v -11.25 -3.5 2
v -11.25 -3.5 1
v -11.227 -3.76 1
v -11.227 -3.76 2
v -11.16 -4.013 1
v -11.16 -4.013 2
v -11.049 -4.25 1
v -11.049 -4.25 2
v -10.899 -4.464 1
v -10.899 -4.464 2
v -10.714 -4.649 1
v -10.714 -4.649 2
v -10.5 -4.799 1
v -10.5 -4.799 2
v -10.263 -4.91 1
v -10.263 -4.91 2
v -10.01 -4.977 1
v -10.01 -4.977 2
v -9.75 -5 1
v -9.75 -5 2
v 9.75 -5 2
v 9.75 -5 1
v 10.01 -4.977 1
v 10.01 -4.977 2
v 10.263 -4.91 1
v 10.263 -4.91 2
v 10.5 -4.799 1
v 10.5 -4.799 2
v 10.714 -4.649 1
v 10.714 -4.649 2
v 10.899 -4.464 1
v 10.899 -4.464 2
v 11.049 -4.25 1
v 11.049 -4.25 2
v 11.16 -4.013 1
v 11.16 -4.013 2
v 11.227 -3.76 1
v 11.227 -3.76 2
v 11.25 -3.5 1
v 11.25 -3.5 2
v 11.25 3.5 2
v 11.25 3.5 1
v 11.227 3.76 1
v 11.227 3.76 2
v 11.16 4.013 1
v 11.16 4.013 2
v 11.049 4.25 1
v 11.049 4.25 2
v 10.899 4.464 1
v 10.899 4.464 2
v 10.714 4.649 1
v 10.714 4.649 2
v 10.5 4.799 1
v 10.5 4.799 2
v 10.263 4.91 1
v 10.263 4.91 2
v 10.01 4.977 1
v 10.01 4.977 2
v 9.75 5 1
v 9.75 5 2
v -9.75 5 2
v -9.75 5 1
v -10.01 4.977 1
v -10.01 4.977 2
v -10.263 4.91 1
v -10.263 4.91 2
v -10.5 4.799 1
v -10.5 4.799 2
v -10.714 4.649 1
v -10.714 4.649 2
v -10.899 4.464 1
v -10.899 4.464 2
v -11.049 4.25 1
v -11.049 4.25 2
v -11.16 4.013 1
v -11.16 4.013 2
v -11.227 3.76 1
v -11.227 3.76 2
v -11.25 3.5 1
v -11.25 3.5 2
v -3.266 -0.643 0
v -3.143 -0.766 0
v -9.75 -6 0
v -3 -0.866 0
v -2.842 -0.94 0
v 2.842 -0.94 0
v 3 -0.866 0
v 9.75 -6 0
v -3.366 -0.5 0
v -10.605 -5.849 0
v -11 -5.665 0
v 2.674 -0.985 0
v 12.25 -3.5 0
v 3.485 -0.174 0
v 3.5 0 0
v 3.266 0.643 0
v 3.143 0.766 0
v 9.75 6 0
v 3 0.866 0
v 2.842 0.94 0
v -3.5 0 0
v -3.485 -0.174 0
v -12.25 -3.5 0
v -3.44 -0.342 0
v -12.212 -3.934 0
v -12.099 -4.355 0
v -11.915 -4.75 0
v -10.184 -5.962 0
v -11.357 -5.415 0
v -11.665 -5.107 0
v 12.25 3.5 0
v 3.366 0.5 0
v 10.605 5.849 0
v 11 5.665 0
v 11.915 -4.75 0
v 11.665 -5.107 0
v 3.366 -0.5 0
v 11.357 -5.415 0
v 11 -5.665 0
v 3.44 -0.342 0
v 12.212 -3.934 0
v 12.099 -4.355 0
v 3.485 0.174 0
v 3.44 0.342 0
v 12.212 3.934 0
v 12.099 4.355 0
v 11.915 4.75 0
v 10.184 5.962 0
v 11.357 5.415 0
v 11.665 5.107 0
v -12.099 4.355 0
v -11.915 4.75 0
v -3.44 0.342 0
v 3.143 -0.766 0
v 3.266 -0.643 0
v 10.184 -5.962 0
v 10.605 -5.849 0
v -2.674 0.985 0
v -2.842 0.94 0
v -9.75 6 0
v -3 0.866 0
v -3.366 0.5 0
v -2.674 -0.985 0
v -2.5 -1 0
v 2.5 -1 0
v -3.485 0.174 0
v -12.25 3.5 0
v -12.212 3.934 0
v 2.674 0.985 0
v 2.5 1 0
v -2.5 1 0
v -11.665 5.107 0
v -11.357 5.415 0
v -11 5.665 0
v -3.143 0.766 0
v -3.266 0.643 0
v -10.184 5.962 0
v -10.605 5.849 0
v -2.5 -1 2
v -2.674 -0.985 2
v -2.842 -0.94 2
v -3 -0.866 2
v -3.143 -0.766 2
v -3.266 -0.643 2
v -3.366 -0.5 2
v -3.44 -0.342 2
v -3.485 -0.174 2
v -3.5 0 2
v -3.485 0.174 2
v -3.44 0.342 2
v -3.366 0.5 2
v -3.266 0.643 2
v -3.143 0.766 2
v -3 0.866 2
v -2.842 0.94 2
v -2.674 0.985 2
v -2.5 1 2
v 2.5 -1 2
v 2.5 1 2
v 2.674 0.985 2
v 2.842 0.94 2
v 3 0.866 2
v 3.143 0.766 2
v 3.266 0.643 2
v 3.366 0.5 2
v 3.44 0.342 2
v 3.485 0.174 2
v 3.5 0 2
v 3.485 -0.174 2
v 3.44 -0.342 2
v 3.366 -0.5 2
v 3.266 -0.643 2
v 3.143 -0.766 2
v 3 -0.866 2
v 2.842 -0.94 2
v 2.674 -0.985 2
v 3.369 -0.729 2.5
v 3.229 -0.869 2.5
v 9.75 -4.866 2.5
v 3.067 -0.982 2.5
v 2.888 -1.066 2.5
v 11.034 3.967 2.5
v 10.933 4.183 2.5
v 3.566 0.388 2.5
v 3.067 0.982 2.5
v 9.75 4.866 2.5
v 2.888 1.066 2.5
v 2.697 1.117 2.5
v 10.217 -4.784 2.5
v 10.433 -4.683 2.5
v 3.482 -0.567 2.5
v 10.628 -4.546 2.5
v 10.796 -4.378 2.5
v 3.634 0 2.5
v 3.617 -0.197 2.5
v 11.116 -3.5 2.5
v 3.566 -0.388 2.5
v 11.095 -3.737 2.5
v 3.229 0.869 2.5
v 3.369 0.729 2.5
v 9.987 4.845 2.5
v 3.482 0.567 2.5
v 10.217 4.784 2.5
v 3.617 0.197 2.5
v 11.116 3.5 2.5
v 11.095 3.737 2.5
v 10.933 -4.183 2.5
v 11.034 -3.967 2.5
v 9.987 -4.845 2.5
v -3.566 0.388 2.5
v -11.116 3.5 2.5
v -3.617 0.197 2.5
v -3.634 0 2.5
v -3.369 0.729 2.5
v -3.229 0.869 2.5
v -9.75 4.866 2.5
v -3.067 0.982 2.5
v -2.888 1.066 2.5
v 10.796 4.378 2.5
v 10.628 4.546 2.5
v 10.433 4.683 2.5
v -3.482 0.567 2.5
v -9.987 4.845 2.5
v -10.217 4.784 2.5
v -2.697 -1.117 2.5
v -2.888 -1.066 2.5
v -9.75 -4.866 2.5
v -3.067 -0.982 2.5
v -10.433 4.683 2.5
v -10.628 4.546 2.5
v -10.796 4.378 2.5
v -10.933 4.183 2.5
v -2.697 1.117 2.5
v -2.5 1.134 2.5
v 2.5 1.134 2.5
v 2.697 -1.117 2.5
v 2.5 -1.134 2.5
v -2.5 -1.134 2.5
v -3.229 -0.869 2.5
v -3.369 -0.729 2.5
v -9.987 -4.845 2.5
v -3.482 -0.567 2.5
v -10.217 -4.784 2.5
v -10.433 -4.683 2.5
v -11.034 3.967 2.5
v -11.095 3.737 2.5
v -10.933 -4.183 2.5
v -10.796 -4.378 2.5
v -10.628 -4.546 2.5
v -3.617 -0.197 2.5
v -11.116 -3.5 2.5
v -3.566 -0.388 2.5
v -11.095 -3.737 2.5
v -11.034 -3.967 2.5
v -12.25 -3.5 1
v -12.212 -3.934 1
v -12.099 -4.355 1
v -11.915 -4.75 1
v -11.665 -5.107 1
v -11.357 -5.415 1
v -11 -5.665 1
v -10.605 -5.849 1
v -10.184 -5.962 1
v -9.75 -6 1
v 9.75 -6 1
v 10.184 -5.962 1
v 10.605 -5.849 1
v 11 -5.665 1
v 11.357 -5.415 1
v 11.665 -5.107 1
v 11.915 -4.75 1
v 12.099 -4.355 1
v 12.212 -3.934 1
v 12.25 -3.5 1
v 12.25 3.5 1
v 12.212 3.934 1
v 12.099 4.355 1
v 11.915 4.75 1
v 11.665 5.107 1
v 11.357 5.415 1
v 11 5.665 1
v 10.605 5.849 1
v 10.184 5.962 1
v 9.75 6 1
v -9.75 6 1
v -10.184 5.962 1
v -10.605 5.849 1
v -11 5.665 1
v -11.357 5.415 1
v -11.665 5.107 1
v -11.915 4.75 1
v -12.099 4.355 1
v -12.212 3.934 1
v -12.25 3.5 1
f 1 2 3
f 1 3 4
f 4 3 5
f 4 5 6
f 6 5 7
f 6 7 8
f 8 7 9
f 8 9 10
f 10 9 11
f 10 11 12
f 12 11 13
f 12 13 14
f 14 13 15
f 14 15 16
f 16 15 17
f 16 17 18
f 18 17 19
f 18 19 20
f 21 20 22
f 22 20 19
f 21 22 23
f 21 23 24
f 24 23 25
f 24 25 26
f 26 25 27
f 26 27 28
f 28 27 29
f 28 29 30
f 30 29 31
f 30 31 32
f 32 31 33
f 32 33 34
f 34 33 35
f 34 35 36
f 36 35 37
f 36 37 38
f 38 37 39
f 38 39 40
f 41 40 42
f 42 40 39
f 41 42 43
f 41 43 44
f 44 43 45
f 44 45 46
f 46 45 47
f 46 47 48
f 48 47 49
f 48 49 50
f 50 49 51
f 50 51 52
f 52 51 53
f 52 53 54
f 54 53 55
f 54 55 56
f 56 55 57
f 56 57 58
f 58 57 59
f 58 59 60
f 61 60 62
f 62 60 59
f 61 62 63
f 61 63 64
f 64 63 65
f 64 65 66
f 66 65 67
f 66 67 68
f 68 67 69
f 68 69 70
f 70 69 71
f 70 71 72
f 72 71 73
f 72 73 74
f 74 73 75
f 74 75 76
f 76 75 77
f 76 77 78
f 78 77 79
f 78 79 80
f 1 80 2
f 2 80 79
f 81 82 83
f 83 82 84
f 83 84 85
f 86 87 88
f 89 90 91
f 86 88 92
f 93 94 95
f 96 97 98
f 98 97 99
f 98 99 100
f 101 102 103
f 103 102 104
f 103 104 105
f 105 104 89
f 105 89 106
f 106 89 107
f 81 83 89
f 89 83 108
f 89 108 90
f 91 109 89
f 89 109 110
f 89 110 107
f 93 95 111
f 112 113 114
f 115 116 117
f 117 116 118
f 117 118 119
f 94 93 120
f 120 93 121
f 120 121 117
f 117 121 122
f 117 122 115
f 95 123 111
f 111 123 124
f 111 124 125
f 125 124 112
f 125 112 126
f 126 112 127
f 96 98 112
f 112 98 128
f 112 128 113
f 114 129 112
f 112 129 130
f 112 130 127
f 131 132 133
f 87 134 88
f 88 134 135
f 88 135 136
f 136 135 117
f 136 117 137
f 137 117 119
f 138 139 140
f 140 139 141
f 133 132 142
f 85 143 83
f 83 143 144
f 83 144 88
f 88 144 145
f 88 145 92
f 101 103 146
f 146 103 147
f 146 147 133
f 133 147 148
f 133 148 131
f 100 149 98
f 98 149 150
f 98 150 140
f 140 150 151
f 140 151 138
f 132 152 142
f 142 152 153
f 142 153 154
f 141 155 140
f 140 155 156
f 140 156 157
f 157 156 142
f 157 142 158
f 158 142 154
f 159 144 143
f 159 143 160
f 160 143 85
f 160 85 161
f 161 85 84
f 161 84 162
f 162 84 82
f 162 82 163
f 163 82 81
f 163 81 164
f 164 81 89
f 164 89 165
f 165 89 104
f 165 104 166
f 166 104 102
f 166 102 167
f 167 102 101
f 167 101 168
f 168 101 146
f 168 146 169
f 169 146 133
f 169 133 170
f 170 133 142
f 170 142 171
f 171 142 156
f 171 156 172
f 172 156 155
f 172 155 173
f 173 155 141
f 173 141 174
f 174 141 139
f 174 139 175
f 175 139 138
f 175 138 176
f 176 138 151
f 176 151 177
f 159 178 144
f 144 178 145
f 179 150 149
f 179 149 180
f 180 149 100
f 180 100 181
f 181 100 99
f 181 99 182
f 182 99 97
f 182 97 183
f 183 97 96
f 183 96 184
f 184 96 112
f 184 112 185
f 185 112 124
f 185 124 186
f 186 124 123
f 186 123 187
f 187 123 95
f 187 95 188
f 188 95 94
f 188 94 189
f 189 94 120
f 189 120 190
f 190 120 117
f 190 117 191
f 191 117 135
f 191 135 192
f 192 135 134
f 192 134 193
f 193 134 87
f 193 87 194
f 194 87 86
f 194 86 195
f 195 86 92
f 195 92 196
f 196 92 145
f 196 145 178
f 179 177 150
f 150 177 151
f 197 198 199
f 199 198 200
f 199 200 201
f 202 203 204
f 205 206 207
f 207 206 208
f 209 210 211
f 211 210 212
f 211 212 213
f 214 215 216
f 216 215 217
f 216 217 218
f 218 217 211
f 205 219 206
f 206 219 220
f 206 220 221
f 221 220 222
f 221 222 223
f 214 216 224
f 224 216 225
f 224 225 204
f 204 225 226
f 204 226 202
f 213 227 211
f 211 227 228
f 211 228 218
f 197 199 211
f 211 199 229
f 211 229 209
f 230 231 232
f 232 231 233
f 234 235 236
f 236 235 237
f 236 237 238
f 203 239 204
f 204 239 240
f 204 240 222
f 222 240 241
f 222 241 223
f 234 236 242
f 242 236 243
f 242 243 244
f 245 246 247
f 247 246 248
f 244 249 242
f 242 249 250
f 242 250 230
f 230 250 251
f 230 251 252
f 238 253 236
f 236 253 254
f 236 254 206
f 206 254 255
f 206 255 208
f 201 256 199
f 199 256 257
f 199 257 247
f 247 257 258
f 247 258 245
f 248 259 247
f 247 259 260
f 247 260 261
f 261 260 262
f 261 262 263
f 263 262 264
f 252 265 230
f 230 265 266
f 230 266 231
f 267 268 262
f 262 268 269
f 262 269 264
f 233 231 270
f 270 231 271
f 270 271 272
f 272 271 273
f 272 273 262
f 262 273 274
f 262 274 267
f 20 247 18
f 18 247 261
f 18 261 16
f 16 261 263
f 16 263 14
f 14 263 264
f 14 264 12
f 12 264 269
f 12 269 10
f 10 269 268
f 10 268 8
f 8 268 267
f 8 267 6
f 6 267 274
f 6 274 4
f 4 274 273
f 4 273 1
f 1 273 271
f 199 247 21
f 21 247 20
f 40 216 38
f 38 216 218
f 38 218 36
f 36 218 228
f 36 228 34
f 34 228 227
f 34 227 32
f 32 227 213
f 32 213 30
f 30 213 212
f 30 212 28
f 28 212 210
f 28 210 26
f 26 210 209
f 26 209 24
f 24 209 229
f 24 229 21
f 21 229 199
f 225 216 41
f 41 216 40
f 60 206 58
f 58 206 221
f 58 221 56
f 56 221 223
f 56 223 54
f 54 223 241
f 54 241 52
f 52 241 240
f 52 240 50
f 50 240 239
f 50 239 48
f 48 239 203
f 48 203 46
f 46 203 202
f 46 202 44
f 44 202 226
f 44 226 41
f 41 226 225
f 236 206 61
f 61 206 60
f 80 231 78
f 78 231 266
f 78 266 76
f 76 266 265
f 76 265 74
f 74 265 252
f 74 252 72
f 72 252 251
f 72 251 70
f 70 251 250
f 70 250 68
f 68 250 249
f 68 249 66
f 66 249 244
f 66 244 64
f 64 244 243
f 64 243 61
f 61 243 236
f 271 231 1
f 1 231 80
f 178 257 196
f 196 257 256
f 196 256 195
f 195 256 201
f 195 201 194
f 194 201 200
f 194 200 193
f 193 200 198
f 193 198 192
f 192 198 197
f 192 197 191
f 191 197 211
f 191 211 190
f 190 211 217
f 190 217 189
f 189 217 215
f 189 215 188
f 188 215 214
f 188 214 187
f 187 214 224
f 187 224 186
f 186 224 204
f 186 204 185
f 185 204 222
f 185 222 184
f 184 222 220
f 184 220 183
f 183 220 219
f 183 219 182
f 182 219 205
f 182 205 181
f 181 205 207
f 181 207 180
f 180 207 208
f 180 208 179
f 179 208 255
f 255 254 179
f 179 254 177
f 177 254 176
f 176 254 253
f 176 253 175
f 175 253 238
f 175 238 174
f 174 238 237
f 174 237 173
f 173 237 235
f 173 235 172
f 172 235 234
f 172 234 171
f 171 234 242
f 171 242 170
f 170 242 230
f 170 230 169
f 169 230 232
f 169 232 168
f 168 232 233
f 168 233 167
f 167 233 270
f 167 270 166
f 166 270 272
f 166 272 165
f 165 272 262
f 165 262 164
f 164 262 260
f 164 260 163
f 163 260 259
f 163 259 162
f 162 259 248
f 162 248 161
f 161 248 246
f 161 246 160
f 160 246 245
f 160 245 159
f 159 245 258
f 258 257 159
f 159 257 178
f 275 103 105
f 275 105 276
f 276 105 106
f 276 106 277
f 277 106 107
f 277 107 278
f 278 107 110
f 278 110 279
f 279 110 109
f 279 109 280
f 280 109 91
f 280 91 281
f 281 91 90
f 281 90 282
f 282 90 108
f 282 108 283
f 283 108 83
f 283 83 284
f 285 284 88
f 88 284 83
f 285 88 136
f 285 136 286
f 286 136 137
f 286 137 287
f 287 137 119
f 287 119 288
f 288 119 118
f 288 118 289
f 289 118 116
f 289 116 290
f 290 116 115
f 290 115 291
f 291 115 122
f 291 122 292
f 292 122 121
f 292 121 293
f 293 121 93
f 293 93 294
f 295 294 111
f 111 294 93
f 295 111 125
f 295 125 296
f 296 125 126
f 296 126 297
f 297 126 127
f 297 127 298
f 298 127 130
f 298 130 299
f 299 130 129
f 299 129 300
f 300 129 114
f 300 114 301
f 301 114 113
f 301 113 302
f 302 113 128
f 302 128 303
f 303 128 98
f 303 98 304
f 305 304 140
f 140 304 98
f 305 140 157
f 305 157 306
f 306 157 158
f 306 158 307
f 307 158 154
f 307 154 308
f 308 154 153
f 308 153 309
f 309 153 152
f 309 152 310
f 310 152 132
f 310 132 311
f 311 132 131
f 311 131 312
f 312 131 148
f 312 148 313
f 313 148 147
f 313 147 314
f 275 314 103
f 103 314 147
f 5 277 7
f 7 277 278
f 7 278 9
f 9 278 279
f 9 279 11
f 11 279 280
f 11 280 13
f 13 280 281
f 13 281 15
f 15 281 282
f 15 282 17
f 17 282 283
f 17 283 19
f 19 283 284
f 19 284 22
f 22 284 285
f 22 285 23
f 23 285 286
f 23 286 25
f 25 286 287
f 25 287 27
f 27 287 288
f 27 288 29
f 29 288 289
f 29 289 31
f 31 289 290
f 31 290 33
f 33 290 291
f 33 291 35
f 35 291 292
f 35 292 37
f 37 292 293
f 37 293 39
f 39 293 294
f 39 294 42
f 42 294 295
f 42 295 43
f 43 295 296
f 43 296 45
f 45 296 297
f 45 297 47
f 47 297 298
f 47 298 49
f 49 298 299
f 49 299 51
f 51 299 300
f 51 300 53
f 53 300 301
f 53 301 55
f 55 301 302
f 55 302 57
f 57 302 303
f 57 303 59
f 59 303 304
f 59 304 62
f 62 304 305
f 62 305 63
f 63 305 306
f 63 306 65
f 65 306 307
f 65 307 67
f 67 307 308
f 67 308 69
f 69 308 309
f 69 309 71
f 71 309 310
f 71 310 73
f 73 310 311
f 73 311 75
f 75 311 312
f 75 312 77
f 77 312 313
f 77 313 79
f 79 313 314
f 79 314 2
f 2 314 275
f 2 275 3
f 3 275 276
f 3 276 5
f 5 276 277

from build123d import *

# Parameters (mm, degrees)
BOSS_EXTRU_1_DEPTH = 2
BOSS_EXTRU_2_DEPTH = 0.5
BOSS_EXTRU_2_DRAFT = 15
BOSS_EXTRU_3_DEPTH = 1


with BuildPart() as part:
    # Esquisse1 → Boss.-Extru.1 (new body)
    with BuildSketch(Plane.XY):
        with BuildLine():
            Line((-9.75, 5), (9.75, 5))
            ThreePointArc((9.75, 5), (10.810660172, 4.560660172), (11.25, 3.5))
            Line((11.25, 3.5), (11.25, -3.5))
            ThreePointArc((11.25, -3.5), (10.810660172, -4.560660172), (9.75, -5))
            Line((9.75, -5), (-9.75, -5))
            ThreePointArc((-9.75, -5), (-10.810660172, -4.560660172), (-11.25, -3.5))
            Line((-11.25, -3.5), (-11.25, 3.5))
            ThreePointArc((-11.25, 3.5), (-10.810660172, 4.560660172), (-9.75, 5))
        make_face()
        with BuildLine():
            Line((-2.5, 1), (2.5, 1))
            ThreePointArc((2.5, 1), (3.5, 0), (2.5, -1))
            Line((2.5, -1), (-2.5, -1))
            ThreePointArc((-2.5, -1), (-3.5, 0), (-2.5, 1))
        make_face(mode=Mode.SUBTRACT)
    extrude(amount=BOSS_EXTRU_1_DEPTH)


with BuildPart() as boss_extru_2_tool:
    # Esquisse2 → Boss.-Extru.2 (with draft: the straight prism first)
    with BuildSketch(Plane.XY.offset(2)):
        with BuildLine():
            Line((-9.75, -5), (9.75, -5))
            ThreePointArc((9.75, -5), (10.810660172, -4.560660172), (11.25, -3.5))
            Line((11.25, -3.5), (11.25, 3.5))
            ThreePointArc((11.25, 3.5), (10.810660172, 4.560660172), (9.75, 5))
            Line((9.75, 5), (-9.75, 5))
            ThreePointArc((-9.75, 5), (-10.810660172, 4.560660172), (-11.25, 3.5))
            Line((-11.25, 3.5), (-11.25, -3.5))
            ThreePointArc((-11.25, -3.5), (-10.810660172, -4.560660172), (-9.75, -5))
        make_face()
        with BuildLine():
            Line((2.5, 1), (-2.5, 1))
            ThreePointArc((-2.5, 1), (-3.5, 0), (-2.5, -1))
            Line((-2.5, -1), (2.5, -1))
            ThreePointArc((2.5, -1), (3.5, 0), (2.5, 1))
        make_face(mode=Mode.SUBTRACT)
    extrude(amount=BOSS_EXTRU_2_DEPTH)
    # Boss.-Extru.2: the draft: its side faces are tilted about the plane it starts from
    boss_extru_2_sides = [boss_extru_2_tool.faces().sort_by_distance(p)[0] for p in [
        (0, -5, 2.25),
        (10.810660172, -4.560660172, 2.25),
        (11.25, 0, 2.25),
        (10.810660172, 4.560660172, 2.25),
        (0, 5, 2.25),
        (-10.810660172, 4.560660172, 2.25),
        (-11.25, 0, 2.25),
        (-10.810660172, -4.560660172, 2.25),
        (-3.5, 0, 2.25),
        (0, 1, 2.25),
        (3.5, 0, 2.25),
        (0, -1, 2.25),
    ]]
    draft(boss_extru_2_sides, Plane.XY.offset(2), BOSS_EXTRU_2_DRAFT)


with BuildPart() as part_1:
    add(part.part)

    # Boss.-Extru.2: add boss_extru_2_tool
    add(boss_extru_2_tool.part)

    # Esquisse3 → Boss.-Extru.3 (add)
    with BuildSketch(Plane(origin=(0, 0, 0), x_dir=(-1, 0, 0), z_dir=(0, 0, -1))):
        with BuildLine():
            Line((12.25, -3.5), (12.25, 3.5))
            ThreePointArc((12.25, 3.5), (11.517766953, 5.267766953), (9.75, 6))
            Line((9.75, 6), (-9.75, 6))
            ThreePointArc((-9.75, 6), (-11.517766953, 5.267766953), (-12.25, 3.5))
            Line((-12.25, 3.5), (-12.25, -3.5))
            ThreePointArc((-12.25, -3.5), (-11.517766953, -5.267766953), (-9.75, -6))
            Line((-9.75, -6), (9.75, -6))
            ThreePointArc((9.75, -6), (11.517766953, -5.267766953), (12.25, -3.5))
        make_face()
        with BuildLine():
            Line((11.25, -3.5), (11.25, 3.5))
            ThreePointArc((11.25, 3.5), (10.810660172, 4.560660172), (9.75, 5))
            Line((9.75, 5), (-9.75, 5))
            ThreePointArc((-9.75, 5), (-10.810660172, 4.560660172), (-11.25, 3.5))
            Line((-11.25, 3.5), (-11.25, -3.5))
            ThreePointArc((-11.25, -3.5), (-10.810660172, -4.560660172), (-9.75, -5))
            Line((-9.75, -5), (9.75, -5))
            ThreePointArc((9.75, -5), (10.810660172, -4.560660172), (11.25, -3.5))
        make_face(mode=Mode.SUBTRACT)
    extrude(amount=-BOSS_EXTRU_3_DEPTH)


solid = part_1.part
